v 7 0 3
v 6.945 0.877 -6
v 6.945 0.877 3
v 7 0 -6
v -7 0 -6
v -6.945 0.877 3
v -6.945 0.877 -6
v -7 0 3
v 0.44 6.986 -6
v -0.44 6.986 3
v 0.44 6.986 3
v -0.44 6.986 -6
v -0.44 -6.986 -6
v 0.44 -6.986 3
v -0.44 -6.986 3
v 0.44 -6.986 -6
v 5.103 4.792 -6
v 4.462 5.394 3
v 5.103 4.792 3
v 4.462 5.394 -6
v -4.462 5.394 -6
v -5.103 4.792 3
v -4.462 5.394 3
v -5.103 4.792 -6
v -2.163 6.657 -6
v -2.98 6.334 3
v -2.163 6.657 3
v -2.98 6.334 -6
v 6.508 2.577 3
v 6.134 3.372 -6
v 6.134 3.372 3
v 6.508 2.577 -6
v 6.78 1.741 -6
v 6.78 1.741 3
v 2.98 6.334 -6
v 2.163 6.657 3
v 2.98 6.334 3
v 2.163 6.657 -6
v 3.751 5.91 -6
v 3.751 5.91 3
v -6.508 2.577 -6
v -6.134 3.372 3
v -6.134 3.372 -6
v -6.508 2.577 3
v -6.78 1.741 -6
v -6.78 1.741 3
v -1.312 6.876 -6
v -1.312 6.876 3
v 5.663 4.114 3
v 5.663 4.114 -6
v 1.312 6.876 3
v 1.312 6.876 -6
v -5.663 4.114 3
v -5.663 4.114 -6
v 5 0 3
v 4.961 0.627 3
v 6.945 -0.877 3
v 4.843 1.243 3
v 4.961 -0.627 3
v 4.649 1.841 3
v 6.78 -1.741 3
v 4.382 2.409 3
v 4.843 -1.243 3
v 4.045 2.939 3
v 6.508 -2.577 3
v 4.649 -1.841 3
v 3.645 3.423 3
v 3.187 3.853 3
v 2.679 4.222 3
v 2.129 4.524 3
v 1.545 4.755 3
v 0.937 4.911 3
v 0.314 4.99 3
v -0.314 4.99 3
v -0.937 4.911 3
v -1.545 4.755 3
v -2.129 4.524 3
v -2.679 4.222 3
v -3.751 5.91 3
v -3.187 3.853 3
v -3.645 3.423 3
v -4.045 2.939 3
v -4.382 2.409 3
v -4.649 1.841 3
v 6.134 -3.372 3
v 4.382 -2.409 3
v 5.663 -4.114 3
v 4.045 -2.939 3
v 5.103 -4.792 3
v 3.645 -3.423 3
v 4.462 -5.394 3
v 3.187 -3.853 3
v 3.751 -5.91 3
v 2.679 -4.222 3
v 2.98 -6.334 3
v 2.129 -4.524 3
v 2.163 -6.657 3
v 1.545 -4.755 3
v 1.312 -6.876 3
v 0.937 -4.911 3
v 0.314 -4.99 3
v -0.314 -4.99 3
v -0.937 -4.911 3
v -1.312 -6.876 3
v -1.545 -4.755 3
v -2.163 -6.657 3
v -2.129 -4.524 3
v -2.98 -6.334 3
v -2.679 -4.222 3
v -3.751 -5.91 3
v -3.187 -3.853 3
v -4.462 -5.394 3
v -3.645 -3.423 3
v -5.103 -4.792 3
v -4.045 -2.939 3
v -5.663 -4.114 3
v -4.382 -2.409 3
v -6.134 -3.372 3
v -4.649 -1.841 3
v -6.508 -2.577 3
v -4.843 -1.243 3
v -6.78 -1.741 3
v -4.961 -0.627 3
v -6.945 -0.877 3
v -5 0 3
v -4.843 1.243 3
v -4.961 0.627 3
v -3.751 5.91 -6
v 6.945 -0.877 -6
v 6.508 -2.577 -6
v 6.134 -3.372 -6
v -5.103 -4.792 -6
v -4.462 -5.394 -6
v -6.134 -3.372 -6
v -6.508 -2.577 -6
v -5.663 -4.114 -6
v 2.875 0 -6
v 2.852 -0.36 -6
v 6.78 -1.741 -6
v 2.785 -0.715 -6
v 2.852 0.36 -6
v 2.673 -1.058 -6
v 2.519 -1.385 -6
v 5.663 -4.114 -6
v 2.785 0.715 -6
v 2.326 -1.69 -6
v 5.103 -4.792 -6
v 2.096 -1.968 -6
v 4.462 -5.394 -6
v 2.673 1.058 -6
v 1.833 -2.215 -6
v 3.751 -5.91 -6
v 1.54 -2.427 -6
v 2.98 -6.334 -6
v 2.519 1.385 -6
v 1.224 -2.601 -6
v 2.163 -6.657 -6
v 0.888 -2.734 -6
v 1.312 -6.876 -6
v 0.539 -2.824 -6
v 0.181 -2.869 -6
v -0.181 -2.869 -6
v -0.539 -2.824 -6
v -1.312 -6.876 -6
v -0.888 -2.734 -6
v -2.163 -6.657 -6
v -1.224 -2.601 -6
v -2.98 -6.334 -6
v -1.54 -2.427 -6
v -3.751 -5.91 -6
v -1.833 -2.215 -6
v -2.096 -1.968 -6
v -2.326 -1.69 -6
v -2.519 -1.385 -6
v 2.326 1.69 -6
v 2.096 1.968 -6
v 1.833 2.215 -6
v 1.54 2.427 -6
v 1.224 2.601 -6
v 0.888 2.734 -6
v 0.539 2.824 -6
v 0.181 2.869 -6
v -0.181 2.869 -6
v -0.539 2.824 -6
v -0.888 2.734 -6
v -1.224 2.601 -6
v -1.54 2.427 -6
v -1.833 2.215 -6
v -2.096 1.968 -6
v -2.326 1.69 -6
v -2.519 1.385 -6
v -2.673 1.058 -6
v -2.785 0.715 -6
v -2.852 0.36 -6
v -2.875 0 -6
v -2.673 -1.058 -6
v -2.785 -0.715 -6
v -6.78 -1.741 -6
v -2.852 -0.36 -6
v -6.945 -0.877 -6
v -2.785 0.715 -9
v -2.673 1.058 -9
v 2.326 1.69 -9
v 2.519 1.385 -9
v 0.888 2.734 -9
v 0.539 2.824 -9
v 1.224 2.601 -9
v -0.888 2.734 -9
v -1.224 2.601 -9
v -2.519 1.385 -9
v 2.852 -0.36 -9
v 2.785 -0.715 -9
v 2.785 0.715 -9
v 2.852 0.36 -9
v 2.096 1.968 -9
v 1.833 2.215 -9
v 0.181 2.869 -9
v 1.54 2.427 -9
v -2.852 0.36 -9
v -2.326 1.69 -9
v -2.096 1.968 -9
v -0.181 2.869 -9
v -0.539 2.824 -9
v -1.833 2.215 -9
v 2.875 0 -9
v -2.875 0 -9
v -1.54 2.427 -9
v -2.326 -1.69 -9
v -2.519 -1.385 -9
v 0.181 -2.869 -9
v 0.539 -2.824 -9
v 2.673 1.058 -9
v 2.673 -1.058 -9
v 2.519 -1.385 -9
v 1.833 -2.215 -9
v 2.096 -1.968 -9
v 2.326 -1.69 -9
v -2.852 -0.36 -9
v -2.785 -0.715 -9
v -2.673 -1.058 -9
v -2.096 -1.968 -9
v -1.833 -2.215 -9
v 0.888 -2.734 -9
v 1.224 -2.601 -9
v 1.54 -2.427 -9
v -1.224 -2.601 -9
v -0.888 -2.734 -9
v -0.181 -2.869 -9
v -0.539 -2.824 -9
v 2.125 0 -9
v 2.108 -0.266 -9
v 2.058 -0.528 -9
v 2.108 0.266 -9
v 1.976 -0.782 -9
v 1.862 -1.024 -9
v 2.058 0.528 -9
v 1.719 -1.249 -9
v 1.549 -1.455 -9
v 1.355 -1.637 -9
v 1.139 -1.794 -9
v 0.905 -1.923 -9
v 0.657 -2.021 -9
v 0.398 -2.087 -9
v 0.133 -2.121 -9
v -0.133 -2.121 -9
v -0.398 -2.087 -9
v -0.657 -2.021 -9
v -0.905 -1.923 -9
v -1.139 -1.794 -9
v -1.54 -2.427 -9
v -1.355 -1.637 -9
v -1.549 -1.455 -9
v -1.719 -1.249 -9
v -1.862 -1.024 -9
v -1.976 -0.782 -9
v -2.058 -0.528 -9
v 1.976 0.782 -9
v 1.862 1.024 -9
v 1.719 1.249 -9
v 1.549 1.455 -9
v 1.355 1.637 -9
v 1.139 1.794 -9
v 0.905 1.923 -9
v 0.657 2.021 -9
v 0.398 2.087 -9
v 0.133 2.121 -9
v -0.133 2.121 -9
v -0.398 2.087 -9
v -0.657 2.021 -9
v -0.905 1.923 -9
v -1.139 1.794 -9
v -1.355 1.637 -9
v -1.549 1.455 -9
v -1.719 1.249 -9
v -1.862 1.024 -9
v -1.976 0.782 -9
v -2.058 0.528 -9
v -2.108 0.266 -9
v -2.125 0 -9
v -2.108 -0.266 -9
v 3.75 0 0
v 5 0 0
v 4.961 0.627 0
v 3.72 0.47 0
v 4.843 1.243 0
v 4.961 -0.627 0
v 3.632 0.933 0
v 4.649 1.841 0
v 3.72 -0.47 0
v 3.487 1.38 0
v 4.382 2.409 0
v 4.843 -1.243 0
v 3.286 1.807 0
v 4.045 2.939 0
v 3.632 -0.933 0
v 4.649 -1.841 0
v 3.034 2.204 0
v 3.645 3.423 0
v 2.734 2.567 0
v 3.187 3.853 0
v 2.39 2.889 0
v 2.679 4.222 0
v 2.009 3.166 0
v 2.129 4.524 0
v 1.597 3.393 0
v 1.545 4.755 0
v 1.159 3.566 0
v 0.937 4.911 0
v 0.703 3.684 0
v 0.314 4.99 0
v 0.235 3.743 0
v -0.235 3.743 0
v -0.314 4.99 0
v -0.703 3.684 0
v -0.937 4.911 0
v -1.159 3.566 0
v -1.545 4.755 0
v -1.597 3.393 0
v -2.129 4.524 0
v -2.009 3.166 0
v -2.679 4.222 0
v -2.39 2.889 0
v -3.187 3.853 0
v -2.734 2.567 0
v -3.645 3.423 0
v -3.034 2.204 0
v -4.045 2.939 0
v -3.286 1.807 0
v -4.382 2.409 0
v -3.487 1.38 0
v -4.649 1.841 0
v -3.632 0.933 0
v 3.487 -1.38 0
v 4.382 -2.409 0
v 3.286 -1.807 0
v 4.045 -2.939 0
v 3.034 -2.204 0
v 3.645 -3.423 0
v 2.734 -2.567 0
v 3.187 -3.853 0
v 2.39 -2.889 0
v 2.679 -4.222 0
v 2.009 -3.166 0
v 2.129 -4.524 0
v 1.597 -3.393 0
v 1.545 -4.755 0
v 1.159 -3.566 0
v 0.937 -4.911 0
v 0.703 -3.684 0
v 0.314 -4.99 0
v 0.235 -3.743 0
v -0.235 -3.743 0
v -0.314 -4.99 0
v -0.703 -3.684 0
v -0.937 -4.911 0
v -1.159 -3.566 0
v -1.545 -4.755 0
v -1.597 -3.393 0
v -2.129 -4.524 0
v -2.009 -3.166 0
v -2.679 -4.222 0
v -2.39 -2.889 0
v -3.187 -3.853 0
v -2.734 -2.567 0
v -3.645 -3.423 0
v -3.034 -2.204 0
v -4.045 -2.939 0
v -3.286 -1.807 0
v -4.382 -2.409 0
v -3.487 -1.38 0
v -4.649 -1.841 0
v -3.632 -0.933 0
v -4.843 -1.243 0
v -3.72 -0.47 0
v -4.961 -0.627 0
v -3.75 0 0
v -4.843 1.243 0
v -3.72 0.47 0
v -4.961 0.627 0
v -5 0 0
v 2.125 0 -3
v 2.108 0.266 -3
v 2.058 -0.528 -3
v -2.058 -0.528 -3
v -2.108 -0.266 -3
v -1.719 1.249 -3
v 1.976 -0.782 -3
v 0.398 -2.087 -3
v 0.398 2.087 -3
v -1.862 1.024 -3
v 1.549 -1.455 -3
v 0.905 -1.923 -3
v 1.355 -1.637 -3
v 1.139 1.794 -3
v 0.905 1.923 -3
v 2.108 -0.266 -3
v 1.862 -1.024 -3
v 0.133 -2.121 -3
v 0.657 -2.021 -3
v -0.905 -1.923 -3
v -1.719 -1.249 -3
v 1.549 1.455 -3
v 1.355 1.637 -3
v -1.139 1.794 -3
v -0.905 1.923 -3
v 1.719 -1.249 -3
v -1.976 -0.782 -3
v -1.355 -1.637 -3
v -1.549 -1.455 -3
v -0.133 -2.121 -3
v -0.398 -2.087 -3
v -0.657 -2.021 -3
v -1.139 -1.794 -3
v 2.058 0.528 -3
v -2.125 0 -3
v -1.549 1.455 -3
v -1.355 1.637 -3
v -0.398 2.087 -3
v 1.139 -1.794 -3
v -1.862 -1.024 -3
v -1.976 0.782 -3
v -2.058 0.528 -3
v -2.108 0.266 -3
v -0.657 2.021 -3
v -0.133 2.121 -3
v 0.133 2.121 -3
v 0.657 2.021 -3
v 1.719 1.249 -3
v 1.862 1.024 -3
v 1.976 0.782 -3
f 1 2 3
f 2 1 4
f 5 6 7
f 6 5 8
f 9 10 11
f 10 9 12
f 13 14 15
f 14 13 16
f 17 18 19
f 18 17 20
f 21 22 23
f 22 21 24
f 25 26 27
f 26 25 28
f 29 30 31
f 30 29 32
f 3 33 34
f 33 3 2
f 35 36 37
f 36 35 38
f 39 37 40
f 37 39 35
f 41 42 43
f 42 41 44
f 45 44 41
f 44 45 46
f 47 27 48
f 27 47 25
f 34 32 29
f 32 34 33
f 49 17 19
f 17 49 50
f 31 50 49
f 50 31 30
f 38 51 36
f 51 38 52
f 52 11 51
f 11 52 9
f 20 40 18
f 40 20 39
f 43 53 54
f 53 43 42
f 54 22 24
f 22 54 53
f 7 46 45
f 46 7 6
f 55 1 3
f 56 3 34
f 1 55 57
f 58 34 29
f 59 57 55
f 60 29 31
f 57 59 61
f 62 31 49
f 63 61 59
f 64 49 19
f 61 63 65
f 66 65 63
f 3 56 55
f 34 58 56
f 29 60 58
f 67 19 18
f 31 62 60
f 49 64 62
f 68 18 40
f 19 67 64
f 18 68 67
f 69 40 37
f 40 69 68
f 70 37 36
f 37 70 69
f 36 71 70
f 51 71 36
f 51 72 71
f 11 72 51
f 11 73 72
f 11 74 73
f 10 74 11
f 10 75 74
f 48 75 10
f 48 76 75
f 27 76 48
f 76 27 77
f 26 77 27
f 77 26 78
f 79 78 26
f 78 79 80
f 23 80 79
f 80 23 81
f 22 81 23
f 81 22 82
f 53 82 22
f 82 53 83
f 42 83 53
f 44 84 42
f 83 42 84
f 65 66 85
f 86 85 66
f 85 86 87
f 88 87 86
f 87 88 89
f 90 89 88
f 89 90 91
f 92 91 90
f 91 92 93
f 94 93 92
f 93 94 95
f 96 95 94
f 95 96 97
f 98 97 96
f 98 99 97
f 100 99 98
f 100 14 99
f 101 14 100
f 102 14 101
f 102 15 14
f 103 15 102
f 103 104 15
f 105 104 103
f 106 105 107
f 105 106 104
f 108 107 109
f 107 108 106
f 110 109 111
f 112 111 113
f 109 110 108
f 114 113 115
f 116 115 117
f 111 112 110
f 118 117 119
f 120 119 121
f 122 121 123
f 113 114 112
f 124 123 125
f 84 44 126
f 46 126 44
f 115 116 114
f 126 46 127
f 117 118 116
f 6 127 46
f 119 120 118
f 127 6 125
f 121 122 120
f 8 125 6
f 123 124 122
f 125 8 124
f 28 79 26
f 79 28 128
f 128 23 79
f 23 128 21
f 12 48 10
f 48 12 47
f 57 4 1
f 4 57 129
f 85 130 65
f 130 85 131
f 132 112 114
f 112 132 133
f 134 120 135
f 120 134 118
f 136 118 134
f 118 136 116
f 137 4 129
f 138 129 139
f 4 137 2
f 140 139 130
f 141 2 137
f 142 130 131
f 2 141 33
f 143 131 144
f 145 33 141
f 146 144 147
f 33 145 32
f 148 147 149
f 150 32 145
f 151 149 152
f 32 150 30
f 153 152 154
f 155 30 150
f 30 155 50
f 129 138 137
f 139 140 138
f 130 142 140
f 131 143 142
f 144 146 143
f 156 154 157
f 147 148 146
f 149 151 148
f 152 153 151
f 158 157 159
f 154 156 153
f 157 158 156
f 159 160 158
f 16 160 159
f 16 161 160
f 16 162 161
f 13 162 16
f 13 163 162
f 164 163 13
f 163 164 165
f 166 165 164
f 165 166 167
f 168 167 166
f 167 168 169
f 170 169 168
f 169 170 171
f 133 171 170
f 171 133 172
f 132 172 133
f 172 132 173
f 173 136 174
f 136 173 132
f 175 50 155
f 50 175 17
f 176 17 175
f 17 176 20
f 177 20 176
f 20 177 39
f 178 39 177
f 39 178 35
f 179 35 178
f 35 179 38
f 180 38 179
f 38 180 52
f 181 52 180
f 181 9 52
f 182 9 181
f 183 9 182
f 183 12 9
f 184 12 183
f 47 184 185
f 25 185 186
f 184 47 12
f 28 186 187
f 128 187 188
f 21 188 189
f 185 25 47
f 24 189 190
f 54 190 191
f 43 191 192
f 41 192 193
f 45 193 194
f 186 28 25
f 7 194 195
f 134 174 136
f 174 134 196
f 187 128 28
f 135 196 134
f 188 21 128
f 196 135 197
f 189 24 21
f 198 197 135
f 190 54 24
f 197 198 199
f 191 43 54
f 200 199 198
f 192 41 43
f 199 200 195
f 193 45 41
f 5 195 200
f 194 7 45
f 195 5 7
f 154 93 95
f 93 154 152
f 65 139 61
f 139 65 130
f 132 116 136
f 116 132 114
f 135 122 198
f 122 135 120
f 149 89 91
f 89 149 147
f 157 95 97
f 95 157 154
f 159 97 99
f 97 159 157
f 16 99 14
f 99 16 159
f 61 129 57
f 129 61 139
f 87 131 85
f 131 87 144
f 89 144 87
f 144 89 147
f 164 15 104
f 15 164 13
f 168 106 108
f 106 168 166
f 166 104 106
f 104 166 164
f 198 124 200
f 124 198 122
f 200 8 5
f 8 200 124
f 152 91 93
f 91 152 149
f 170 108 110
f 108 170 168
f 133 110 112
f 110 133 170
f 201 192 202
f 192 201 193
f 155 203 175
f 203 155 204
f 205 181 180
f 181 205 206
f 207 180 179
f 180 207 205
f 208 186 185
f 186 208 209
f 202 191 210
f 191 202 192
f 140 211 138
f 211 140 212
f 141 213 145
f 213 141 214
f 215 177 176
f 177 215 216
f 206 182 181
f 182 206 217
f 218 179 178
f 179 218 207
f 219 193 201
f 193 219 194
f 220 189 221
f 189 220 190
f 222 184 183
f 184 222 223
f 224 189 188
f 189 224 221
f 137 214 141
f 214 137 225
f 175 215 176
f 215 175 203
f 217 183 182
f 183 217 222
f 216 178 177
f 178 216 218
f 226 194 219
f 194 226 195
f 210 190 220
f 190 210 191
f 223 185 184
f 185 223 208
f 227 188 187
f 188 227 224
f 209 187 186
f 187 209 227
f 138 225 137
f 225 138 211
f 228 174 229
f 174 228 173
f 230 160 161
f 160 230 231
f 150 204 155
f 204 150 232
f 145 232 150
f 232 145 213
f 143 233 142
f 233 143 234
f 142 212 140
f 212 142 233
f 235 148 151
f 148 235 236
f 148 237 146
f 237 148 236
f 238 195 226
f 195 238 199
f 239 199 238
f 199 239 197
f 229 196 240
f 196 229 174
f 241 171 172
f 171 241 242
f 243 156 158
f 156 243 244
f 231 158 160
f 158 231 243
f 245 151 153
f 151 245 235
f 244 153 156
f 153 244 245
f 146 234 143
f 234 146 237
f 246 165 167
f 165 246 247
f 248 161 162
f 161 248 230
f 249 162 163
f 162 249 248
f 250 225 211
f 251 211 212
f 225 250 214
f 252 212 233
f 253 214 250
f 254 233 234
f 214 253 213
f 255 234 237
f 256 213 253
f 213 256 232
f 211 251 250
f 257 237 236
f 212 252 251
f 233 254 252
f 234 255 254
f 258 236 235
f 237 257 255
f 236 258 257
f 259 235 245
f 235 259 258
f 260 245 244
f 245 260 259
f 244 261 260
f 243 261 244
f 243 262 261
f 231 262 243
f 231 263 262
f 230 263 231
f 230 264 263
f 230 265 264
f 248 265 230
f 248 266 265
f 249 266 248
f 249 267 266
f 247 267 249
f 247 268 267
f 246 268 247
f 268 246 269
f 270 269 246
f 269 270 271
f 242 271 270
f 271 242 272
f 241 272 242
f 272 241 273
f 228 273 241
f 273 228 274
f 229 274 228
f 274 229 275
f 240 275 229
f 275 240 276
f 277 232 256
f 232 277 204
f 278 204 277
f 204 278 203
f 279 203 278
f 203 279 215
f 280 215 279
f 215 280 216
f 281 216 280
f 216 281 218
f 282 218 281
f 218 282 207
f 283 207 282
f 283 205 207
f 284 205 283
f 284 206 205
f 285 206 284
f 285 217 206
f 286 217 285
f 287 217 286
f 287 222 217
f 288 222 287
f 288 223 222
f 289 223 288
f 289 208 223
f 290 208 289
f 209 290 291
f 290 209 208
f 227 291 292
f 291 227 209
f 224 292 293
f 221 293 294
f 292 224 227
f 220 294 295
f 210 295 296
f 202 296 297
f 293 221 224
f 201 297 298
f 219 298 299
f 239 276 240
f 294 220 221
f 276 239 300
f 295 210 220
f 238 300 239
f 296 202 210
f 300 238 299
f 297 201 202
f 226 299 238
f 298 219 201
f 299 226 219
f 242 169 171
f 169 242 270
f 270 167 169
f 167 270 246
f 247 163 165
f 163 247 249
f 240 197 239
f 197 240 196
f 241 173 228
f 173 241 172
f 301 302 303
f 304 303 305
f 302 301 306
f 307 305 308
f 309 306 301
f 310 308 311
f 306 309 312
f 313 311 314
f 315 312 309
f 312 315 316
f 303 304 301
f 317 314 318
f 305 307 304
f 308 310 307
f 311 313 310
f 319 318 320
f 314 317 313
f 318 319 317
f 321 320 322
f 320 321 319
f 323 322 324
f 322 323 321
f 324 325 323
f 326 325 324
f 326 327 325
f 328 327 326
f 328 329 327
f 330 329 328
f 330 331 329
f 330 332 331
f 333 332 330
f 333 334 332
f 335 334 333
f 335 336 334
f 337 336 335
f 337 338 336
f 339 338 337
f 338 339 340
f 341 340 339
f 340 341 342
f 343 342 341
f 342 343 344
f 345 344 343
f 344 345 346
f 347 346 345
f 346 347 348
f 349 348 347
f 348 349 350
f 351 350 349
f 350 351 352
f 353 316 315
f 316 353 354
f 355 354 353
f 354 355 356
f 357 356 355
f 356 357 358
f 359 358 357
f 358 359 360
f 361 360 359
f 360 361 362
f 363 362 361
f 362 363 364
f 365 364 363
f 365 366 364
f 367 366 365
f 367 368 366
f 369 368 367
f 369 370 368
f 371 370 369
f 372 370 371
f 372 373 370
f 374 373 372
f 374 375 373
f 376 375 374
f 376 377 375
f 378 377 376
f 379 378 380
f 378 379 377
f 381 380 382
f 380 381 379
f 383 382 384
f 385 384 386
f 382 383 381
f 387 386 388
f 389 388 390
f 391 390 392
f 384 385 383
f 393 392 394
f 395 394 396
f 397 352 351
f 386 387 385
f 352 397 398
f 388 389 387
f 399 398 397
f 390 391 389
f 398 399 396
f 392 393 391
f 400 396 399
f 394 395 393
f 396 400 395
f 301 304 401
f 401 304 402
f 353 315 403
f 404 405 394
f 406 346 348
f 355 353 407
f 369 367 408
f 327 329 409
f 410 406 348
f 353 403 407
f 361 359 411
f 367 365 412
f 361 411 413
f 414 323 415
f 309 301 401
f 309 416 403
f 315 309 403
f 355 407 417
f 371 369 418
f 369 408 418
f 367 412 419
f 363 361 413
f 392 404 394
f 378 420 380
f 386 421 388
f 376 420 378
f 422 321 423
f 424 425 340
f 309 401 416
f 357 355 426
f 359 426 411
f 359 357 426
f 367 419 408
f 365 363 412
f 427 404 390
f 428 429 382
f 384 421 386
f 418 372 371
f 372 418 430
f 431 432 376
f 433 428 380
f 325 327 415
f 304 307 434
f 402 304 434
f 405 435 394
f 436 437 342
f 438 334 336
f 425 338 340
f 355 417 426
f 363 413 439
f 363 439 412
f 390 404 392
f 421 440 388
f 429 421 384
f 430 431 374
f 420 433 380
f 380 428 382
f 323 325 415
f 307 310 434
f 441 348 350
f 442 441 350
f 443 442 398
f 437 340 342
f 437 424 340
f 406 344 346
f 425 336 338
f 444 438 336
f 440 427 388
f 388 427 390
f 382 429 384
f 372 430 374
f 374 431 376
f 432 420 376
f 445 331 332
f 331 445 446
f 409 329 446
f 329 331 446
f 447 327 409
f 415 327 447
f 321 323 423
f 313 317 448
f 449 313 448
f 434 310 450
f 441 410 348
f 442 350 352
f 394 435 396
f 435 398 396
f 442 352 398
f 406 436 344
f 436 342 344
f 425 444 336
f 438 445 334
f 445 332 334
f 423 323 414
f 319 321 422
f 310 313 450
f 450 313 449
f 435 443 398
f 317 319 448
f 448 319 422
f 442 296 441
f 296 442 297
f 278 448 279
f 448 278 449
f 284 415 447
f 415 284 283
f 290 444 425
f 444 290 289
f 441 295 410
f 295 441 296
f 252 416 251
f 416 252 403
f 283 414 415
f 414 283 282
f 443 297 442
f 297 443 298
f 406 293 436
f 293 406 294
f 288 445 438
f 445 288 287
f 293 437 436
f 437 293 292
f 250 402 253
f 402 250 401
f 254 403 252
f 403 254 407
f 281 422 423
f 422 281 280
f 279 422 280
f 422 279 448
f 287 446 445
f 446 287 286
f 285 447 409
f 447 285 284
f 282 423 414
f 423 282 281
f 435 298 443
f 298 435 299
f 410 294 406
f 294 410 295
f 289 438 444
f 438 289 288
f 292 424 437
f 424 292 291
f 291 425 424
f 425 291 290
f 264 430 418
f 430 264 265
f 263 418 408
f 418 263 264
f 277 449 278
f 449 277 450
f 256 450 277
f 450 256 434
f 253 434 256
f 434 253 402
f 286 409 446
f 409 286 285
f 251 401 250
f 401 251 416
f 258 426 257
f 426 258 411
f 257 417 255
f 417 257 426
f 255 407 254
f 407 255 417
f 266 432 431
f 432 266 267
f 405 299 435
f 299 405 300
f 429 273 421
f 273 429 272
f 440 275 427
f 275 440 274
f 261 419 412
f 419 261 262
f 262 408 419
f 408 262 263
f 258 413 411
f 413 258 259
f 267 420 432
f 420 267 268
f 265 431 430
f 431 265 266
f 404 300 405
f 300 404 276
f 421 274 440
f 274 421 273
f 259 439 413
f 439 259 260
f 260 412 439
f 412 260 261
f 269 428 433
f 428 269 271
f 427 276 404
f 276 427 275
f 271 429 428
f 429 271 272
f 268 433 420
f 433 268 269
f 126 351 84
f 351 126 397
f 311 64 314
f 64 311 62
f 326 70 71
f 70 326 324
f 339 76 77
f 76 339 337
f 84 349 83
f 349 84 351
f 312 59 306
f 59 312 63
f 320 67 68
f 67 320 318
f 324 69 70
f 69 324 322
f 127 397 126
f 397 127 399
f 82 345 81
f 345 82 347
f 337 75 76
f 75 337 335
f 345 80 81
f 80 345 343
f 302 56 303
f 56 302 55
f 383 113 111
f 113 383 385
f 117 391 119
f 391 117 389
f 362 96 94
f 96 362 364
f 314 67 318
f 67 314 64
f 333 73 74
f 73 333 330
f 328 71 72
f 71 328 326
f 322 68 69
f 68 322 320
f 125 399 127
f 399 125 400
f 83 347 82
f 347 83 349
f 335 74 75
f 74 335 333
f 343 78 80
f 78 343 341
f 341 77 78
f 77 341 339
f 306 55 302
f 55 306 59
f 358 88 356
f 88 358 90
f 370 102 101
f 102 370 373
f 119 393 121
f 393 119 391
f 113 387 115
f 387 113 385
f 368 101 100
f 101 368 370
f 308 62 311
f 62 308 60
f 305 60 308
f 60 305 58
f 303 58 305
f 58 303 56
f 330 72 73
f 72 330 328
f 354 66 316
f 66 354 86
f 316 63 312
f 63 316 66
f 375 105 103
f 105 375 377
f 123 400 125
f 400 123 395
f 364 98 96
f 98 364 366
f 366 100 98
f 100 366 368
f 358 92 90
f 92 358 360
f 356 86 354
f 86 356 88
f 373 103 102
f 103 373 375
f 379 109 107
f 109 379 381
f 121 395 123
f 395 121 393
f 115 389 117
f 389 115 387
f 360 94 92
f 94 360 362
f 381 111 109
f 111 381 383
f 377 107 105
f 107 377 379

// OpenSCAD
$fn = 50;

difference() {
	union() {
		translate(v = [0, 0, -6.0]) {
			cylinder(h = 9, r = 7.0);
		}
		#translate(v = [0, 0, -9.0]) {
			cylinder(h = 9, r = 2.875);
		}
	}
	union() {
		translate(v = [0, 0, 0]) {
			rotate(a = [0, 0, 0]) {
				difference() {
					union() {
						translate(v = [0, 0, -9.0]) {
							cylinder(h = 9, r = 2.0);
						}
						translate(v = [0, 0, -3]) {
							cylinder(h = 3, r1 = 2.125, r2 = 3.75);
						}
						translate(v = [0, 0, -9.0]) {
							cylinder(h = 9, r = 2.125);
						}
						translate(v = [0, 0, -9.0]) {
							cylinder(h = 9, r = 2.0);
						}
					}
					union();
				}
			}
		}
		#cylinder(h = 3, r = 5.0);
	}
}
